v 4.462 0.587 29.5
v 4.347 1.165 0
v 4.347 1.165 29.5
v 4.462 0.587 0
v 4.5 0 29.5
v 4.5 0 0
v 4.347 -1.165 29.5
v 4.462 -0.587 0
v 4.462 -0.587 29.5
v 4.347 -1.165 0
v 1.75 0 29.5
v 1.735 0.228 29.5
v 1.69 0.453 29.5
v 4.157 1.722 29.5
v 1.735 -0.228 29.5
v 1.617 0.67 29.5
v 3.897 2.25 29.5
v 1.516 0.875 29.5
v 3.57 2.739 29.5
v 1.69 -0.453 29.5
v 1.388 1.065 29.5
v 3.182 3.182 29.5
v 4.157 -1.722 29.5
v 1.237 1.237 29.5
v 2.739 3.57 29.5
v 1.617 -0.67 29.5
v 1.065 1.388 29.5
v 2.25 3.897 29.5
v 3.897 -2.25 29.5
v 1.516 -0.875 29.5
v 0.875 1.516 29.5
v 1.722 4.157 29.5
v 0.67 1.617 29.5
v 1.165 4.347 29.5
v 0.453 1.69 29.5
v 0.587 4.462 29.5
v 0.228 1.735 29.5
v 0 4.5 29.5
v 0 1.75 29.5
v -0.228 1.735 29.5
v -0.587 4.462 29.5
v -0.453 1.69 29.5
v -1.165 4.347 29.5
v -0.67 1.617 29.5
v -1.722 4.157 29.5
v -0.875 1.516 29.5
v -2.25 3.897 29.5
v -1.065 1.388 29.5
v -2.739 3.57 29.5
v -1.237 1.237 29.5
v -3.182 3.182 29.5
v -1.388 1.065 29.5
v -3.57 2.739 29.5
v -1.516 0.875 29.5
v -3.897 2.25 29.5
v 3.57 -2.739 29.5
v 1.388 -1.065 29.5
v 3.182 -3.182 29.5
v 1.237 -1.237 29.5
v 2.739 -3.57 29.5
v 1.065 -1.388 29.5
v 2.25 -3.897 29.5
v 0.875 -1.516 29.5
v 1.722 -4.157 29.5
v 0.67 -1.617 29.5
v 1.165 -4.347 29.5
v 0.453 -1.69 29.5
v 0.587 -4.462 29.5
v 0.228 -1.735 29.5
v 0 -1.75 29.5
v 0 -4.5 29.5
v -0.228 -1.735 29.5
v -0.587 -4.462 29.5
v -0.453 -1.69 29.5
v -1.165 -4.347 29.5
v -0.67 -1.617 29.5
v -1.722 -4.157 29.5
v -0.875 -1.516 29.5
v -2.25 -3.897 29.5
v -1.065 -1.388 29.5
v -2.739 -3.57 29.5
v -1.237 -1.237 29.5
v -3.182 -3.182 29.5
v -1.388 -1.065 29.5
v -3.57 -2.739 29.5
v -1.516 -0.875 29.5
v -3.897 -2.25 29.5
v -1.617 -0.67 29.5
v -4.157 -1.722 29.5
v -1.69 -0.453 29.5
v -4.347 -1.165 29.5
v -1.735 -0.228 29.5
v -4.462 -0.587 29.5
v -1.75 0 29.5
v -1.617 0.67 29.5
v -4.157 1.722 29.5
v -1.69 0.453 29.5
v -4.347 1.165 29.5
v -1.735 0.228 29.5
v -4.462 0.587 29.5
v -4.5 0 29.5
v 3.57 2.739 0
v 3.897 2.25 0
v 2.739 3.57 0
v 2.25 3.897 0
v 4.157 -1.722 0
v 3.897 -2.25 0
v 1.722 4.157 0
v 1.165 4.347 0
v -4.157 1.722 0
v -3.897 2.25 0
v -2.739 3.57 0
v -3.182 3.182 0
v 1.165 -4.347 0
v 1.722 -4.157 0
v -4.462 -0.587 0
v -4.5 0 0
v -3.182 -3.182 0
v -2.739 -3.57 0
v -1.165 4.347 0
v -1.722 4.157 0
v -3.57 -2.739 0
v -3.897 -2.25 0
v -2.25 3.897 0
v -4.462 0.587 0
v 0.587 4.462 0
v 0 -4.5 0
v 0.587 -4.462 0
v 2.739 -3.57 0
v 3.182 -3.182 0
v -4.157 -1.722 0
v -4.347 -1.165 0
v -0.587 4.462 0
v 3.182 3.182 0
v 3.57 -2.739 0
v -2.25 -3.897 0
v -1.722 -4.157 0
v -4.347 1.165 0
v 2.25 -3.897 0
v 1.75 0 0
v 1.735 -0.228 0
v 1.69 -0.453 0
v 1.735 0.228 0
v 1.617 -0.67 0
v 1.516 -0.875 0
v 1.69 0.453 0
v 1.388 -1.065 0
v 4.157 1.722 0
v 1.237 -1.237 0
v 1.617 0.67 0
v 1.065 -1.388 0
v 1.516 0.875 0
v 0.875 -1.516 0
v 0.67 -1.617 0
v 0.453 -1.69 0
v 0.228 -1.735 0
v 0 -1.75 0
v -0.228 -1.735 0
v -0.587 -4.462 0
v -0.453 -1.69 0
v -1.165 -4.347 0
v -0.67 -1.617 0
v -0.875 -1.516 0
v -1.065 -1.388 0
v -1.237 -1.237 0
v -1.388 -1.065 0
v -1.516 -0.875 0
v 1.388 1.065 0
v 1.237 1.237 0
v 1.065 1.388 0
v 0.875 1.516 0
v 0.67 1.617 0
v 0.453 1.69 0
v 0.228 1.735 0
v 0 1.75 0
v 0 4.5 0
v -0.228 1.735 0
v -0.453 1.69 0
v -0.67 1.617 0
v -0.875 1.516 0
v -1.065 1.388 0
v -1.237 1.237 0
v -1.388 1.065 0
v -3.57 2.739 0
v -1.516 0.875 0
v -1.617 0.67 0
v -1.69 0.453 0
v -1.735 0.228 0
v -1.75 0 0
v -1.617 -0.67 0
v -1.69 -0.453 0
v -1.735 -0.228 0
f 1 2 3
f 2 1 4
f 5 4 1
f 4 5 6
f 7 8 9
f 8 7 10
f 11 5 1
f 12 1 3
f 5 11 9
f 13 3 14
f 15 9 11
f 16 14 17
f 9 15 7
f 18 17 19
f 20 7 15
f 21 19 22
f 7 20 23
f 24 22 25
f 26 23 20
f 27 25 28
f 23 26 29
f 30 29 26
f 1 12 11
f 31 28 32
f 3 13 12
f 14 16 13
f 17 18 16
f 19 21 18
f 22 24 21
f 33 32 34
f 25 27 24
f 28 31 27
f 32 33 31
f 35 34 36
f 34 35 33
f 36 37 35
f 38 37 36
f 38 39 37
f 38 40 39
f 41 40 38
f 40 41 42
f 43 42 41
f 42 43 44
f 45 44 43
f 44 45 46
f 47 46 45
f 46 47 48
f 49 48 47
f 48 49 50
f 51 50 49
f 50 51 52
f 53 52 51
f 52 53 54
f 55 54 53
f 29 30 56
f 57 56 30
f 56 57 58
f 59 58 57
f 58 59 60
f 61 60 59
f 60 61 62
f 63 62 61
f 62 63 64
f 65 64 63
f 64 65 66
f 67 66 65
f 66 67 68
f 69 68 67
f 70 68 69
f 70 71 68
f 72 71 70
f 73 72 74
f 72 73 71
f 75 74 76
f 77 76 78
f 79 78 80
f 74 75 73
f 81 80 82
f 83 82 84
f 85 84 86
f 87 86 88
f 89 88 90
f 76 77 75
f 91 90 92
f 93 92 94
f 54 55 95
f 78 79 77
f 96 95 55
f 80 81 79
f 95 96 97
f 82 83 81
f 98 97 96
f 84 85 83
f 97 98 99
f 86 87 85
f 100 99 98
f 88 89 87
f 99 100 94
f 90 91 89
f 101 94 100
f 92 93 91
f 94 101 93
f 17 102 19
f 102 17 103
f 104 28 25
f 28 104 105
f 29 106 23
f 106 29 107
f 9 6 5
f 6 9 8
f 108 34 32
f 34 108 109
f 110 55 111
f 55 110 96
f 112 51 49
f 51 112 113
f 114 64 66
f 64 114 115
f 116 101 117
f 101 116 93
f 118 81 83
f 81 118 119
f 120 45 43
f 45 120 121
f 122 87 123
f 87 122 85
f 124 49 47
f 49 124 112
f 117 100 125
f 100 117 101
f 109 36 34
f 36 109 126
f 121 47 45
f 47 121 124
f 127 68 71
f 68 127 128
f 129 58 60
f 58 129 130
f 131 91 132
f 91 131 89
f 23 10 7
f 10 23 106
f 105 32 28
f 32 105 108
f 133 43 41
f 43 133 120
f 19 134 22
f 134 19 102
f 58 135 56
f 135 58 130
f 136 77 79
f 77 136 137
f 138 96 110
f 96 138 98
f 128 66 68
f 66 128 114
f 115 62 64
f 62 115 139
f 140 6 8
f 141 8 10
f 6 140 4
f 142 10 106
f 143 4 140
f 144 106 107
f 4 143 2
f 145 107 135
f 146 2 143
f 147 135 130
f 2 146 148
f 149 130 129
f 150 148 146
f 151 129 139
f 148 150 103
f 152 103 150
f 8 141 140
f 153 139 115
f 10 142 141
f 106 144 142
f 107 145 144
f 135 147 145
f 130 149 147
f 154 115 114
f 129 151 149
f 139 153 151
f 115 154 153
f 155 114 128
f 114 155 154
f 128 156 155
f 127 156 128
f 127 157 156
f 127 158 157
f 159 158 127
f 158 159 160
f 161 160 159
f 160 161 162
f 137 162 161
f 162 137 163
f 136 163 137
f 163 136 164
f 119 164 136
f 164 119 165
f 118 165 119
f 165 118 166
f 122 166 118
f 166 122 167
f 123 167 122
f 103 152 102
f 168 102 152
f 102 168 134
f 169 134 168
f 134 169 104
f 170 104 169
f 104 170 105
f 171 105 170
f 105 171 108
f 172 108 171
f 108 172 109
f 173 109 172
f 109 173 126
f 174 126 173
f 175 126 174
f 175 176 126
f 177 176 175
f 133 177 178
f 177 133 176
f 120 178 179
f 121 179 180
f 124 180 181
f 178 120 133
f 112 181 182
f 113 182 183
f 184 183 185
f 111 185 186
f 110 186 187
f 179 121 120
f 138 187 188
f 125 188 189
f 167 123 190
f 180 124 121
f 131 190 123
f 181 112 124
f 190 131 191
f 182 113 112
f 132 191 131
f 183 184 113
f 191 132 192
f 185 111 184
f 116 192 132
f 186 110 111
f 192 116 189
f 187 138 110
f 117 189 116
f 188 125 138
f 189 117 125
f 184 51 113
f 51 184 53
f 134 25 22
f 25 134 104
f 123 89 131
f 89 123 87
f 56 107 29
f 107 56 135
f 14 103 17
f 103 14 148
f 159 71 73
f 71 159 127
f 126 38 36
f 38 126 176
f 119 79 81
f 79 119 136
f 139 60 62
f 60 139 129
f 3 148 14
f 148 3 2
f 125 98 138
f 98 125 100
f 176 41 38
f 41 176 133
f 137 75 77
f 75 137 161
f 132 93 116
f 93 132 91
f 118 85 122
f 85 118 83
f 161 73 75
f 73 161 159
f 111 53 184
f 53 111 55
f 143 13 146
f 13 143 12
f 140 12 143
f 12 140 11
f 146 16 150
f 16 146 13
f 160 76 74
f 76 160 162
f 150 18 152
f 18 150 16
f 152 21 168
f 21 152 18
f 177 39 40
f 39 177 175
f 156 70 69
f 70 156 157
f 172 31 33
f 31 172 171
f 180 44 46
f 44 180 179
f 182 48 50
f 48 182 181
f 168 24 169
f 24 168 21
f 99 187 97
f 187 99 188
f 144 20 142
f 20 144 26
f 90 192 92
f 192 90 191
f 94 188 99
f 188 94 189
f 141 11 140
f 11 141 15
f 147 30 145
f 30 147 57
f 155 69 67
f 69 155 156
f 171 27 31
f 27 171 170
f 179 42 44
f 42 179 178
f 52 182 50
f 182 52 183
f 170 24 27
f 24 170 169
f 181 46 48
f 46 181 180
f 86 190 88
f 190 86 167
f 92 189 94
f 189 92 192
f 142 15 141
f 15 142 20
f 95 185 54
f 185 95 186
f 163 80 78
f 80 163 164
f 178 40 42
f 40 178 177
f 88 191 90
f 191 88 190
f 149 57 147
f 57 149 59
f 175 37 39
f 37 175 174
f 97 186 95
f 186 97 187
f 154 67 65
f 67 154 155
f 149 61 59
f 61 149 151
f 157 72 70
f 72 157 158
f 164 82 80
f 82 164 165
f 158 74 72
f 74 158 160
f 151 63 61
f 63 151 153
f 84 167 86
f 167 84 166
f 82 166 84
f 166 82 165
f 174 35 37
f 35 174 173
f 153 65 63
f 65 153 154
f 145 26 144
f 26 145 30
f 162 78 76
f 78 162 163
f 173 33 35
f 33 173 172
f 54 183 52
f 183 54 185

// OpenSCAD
// Gen-DD — frame standoff tube between stator and an endbell, on each M3 frame rod (outside rotor OD).
// Print x4. Height = frame_standoff_h (rotor + steel + hub + collar + running clearance).
include <parameters.scad>;
$fn = 48;
difference() {
    cylinder(d=standoff_od, h=frame_standoff_h);
    translate([0, 0, -0.1]) cylinder(d=m3_clear, h=frame_standoff_h + 0.2);
}
